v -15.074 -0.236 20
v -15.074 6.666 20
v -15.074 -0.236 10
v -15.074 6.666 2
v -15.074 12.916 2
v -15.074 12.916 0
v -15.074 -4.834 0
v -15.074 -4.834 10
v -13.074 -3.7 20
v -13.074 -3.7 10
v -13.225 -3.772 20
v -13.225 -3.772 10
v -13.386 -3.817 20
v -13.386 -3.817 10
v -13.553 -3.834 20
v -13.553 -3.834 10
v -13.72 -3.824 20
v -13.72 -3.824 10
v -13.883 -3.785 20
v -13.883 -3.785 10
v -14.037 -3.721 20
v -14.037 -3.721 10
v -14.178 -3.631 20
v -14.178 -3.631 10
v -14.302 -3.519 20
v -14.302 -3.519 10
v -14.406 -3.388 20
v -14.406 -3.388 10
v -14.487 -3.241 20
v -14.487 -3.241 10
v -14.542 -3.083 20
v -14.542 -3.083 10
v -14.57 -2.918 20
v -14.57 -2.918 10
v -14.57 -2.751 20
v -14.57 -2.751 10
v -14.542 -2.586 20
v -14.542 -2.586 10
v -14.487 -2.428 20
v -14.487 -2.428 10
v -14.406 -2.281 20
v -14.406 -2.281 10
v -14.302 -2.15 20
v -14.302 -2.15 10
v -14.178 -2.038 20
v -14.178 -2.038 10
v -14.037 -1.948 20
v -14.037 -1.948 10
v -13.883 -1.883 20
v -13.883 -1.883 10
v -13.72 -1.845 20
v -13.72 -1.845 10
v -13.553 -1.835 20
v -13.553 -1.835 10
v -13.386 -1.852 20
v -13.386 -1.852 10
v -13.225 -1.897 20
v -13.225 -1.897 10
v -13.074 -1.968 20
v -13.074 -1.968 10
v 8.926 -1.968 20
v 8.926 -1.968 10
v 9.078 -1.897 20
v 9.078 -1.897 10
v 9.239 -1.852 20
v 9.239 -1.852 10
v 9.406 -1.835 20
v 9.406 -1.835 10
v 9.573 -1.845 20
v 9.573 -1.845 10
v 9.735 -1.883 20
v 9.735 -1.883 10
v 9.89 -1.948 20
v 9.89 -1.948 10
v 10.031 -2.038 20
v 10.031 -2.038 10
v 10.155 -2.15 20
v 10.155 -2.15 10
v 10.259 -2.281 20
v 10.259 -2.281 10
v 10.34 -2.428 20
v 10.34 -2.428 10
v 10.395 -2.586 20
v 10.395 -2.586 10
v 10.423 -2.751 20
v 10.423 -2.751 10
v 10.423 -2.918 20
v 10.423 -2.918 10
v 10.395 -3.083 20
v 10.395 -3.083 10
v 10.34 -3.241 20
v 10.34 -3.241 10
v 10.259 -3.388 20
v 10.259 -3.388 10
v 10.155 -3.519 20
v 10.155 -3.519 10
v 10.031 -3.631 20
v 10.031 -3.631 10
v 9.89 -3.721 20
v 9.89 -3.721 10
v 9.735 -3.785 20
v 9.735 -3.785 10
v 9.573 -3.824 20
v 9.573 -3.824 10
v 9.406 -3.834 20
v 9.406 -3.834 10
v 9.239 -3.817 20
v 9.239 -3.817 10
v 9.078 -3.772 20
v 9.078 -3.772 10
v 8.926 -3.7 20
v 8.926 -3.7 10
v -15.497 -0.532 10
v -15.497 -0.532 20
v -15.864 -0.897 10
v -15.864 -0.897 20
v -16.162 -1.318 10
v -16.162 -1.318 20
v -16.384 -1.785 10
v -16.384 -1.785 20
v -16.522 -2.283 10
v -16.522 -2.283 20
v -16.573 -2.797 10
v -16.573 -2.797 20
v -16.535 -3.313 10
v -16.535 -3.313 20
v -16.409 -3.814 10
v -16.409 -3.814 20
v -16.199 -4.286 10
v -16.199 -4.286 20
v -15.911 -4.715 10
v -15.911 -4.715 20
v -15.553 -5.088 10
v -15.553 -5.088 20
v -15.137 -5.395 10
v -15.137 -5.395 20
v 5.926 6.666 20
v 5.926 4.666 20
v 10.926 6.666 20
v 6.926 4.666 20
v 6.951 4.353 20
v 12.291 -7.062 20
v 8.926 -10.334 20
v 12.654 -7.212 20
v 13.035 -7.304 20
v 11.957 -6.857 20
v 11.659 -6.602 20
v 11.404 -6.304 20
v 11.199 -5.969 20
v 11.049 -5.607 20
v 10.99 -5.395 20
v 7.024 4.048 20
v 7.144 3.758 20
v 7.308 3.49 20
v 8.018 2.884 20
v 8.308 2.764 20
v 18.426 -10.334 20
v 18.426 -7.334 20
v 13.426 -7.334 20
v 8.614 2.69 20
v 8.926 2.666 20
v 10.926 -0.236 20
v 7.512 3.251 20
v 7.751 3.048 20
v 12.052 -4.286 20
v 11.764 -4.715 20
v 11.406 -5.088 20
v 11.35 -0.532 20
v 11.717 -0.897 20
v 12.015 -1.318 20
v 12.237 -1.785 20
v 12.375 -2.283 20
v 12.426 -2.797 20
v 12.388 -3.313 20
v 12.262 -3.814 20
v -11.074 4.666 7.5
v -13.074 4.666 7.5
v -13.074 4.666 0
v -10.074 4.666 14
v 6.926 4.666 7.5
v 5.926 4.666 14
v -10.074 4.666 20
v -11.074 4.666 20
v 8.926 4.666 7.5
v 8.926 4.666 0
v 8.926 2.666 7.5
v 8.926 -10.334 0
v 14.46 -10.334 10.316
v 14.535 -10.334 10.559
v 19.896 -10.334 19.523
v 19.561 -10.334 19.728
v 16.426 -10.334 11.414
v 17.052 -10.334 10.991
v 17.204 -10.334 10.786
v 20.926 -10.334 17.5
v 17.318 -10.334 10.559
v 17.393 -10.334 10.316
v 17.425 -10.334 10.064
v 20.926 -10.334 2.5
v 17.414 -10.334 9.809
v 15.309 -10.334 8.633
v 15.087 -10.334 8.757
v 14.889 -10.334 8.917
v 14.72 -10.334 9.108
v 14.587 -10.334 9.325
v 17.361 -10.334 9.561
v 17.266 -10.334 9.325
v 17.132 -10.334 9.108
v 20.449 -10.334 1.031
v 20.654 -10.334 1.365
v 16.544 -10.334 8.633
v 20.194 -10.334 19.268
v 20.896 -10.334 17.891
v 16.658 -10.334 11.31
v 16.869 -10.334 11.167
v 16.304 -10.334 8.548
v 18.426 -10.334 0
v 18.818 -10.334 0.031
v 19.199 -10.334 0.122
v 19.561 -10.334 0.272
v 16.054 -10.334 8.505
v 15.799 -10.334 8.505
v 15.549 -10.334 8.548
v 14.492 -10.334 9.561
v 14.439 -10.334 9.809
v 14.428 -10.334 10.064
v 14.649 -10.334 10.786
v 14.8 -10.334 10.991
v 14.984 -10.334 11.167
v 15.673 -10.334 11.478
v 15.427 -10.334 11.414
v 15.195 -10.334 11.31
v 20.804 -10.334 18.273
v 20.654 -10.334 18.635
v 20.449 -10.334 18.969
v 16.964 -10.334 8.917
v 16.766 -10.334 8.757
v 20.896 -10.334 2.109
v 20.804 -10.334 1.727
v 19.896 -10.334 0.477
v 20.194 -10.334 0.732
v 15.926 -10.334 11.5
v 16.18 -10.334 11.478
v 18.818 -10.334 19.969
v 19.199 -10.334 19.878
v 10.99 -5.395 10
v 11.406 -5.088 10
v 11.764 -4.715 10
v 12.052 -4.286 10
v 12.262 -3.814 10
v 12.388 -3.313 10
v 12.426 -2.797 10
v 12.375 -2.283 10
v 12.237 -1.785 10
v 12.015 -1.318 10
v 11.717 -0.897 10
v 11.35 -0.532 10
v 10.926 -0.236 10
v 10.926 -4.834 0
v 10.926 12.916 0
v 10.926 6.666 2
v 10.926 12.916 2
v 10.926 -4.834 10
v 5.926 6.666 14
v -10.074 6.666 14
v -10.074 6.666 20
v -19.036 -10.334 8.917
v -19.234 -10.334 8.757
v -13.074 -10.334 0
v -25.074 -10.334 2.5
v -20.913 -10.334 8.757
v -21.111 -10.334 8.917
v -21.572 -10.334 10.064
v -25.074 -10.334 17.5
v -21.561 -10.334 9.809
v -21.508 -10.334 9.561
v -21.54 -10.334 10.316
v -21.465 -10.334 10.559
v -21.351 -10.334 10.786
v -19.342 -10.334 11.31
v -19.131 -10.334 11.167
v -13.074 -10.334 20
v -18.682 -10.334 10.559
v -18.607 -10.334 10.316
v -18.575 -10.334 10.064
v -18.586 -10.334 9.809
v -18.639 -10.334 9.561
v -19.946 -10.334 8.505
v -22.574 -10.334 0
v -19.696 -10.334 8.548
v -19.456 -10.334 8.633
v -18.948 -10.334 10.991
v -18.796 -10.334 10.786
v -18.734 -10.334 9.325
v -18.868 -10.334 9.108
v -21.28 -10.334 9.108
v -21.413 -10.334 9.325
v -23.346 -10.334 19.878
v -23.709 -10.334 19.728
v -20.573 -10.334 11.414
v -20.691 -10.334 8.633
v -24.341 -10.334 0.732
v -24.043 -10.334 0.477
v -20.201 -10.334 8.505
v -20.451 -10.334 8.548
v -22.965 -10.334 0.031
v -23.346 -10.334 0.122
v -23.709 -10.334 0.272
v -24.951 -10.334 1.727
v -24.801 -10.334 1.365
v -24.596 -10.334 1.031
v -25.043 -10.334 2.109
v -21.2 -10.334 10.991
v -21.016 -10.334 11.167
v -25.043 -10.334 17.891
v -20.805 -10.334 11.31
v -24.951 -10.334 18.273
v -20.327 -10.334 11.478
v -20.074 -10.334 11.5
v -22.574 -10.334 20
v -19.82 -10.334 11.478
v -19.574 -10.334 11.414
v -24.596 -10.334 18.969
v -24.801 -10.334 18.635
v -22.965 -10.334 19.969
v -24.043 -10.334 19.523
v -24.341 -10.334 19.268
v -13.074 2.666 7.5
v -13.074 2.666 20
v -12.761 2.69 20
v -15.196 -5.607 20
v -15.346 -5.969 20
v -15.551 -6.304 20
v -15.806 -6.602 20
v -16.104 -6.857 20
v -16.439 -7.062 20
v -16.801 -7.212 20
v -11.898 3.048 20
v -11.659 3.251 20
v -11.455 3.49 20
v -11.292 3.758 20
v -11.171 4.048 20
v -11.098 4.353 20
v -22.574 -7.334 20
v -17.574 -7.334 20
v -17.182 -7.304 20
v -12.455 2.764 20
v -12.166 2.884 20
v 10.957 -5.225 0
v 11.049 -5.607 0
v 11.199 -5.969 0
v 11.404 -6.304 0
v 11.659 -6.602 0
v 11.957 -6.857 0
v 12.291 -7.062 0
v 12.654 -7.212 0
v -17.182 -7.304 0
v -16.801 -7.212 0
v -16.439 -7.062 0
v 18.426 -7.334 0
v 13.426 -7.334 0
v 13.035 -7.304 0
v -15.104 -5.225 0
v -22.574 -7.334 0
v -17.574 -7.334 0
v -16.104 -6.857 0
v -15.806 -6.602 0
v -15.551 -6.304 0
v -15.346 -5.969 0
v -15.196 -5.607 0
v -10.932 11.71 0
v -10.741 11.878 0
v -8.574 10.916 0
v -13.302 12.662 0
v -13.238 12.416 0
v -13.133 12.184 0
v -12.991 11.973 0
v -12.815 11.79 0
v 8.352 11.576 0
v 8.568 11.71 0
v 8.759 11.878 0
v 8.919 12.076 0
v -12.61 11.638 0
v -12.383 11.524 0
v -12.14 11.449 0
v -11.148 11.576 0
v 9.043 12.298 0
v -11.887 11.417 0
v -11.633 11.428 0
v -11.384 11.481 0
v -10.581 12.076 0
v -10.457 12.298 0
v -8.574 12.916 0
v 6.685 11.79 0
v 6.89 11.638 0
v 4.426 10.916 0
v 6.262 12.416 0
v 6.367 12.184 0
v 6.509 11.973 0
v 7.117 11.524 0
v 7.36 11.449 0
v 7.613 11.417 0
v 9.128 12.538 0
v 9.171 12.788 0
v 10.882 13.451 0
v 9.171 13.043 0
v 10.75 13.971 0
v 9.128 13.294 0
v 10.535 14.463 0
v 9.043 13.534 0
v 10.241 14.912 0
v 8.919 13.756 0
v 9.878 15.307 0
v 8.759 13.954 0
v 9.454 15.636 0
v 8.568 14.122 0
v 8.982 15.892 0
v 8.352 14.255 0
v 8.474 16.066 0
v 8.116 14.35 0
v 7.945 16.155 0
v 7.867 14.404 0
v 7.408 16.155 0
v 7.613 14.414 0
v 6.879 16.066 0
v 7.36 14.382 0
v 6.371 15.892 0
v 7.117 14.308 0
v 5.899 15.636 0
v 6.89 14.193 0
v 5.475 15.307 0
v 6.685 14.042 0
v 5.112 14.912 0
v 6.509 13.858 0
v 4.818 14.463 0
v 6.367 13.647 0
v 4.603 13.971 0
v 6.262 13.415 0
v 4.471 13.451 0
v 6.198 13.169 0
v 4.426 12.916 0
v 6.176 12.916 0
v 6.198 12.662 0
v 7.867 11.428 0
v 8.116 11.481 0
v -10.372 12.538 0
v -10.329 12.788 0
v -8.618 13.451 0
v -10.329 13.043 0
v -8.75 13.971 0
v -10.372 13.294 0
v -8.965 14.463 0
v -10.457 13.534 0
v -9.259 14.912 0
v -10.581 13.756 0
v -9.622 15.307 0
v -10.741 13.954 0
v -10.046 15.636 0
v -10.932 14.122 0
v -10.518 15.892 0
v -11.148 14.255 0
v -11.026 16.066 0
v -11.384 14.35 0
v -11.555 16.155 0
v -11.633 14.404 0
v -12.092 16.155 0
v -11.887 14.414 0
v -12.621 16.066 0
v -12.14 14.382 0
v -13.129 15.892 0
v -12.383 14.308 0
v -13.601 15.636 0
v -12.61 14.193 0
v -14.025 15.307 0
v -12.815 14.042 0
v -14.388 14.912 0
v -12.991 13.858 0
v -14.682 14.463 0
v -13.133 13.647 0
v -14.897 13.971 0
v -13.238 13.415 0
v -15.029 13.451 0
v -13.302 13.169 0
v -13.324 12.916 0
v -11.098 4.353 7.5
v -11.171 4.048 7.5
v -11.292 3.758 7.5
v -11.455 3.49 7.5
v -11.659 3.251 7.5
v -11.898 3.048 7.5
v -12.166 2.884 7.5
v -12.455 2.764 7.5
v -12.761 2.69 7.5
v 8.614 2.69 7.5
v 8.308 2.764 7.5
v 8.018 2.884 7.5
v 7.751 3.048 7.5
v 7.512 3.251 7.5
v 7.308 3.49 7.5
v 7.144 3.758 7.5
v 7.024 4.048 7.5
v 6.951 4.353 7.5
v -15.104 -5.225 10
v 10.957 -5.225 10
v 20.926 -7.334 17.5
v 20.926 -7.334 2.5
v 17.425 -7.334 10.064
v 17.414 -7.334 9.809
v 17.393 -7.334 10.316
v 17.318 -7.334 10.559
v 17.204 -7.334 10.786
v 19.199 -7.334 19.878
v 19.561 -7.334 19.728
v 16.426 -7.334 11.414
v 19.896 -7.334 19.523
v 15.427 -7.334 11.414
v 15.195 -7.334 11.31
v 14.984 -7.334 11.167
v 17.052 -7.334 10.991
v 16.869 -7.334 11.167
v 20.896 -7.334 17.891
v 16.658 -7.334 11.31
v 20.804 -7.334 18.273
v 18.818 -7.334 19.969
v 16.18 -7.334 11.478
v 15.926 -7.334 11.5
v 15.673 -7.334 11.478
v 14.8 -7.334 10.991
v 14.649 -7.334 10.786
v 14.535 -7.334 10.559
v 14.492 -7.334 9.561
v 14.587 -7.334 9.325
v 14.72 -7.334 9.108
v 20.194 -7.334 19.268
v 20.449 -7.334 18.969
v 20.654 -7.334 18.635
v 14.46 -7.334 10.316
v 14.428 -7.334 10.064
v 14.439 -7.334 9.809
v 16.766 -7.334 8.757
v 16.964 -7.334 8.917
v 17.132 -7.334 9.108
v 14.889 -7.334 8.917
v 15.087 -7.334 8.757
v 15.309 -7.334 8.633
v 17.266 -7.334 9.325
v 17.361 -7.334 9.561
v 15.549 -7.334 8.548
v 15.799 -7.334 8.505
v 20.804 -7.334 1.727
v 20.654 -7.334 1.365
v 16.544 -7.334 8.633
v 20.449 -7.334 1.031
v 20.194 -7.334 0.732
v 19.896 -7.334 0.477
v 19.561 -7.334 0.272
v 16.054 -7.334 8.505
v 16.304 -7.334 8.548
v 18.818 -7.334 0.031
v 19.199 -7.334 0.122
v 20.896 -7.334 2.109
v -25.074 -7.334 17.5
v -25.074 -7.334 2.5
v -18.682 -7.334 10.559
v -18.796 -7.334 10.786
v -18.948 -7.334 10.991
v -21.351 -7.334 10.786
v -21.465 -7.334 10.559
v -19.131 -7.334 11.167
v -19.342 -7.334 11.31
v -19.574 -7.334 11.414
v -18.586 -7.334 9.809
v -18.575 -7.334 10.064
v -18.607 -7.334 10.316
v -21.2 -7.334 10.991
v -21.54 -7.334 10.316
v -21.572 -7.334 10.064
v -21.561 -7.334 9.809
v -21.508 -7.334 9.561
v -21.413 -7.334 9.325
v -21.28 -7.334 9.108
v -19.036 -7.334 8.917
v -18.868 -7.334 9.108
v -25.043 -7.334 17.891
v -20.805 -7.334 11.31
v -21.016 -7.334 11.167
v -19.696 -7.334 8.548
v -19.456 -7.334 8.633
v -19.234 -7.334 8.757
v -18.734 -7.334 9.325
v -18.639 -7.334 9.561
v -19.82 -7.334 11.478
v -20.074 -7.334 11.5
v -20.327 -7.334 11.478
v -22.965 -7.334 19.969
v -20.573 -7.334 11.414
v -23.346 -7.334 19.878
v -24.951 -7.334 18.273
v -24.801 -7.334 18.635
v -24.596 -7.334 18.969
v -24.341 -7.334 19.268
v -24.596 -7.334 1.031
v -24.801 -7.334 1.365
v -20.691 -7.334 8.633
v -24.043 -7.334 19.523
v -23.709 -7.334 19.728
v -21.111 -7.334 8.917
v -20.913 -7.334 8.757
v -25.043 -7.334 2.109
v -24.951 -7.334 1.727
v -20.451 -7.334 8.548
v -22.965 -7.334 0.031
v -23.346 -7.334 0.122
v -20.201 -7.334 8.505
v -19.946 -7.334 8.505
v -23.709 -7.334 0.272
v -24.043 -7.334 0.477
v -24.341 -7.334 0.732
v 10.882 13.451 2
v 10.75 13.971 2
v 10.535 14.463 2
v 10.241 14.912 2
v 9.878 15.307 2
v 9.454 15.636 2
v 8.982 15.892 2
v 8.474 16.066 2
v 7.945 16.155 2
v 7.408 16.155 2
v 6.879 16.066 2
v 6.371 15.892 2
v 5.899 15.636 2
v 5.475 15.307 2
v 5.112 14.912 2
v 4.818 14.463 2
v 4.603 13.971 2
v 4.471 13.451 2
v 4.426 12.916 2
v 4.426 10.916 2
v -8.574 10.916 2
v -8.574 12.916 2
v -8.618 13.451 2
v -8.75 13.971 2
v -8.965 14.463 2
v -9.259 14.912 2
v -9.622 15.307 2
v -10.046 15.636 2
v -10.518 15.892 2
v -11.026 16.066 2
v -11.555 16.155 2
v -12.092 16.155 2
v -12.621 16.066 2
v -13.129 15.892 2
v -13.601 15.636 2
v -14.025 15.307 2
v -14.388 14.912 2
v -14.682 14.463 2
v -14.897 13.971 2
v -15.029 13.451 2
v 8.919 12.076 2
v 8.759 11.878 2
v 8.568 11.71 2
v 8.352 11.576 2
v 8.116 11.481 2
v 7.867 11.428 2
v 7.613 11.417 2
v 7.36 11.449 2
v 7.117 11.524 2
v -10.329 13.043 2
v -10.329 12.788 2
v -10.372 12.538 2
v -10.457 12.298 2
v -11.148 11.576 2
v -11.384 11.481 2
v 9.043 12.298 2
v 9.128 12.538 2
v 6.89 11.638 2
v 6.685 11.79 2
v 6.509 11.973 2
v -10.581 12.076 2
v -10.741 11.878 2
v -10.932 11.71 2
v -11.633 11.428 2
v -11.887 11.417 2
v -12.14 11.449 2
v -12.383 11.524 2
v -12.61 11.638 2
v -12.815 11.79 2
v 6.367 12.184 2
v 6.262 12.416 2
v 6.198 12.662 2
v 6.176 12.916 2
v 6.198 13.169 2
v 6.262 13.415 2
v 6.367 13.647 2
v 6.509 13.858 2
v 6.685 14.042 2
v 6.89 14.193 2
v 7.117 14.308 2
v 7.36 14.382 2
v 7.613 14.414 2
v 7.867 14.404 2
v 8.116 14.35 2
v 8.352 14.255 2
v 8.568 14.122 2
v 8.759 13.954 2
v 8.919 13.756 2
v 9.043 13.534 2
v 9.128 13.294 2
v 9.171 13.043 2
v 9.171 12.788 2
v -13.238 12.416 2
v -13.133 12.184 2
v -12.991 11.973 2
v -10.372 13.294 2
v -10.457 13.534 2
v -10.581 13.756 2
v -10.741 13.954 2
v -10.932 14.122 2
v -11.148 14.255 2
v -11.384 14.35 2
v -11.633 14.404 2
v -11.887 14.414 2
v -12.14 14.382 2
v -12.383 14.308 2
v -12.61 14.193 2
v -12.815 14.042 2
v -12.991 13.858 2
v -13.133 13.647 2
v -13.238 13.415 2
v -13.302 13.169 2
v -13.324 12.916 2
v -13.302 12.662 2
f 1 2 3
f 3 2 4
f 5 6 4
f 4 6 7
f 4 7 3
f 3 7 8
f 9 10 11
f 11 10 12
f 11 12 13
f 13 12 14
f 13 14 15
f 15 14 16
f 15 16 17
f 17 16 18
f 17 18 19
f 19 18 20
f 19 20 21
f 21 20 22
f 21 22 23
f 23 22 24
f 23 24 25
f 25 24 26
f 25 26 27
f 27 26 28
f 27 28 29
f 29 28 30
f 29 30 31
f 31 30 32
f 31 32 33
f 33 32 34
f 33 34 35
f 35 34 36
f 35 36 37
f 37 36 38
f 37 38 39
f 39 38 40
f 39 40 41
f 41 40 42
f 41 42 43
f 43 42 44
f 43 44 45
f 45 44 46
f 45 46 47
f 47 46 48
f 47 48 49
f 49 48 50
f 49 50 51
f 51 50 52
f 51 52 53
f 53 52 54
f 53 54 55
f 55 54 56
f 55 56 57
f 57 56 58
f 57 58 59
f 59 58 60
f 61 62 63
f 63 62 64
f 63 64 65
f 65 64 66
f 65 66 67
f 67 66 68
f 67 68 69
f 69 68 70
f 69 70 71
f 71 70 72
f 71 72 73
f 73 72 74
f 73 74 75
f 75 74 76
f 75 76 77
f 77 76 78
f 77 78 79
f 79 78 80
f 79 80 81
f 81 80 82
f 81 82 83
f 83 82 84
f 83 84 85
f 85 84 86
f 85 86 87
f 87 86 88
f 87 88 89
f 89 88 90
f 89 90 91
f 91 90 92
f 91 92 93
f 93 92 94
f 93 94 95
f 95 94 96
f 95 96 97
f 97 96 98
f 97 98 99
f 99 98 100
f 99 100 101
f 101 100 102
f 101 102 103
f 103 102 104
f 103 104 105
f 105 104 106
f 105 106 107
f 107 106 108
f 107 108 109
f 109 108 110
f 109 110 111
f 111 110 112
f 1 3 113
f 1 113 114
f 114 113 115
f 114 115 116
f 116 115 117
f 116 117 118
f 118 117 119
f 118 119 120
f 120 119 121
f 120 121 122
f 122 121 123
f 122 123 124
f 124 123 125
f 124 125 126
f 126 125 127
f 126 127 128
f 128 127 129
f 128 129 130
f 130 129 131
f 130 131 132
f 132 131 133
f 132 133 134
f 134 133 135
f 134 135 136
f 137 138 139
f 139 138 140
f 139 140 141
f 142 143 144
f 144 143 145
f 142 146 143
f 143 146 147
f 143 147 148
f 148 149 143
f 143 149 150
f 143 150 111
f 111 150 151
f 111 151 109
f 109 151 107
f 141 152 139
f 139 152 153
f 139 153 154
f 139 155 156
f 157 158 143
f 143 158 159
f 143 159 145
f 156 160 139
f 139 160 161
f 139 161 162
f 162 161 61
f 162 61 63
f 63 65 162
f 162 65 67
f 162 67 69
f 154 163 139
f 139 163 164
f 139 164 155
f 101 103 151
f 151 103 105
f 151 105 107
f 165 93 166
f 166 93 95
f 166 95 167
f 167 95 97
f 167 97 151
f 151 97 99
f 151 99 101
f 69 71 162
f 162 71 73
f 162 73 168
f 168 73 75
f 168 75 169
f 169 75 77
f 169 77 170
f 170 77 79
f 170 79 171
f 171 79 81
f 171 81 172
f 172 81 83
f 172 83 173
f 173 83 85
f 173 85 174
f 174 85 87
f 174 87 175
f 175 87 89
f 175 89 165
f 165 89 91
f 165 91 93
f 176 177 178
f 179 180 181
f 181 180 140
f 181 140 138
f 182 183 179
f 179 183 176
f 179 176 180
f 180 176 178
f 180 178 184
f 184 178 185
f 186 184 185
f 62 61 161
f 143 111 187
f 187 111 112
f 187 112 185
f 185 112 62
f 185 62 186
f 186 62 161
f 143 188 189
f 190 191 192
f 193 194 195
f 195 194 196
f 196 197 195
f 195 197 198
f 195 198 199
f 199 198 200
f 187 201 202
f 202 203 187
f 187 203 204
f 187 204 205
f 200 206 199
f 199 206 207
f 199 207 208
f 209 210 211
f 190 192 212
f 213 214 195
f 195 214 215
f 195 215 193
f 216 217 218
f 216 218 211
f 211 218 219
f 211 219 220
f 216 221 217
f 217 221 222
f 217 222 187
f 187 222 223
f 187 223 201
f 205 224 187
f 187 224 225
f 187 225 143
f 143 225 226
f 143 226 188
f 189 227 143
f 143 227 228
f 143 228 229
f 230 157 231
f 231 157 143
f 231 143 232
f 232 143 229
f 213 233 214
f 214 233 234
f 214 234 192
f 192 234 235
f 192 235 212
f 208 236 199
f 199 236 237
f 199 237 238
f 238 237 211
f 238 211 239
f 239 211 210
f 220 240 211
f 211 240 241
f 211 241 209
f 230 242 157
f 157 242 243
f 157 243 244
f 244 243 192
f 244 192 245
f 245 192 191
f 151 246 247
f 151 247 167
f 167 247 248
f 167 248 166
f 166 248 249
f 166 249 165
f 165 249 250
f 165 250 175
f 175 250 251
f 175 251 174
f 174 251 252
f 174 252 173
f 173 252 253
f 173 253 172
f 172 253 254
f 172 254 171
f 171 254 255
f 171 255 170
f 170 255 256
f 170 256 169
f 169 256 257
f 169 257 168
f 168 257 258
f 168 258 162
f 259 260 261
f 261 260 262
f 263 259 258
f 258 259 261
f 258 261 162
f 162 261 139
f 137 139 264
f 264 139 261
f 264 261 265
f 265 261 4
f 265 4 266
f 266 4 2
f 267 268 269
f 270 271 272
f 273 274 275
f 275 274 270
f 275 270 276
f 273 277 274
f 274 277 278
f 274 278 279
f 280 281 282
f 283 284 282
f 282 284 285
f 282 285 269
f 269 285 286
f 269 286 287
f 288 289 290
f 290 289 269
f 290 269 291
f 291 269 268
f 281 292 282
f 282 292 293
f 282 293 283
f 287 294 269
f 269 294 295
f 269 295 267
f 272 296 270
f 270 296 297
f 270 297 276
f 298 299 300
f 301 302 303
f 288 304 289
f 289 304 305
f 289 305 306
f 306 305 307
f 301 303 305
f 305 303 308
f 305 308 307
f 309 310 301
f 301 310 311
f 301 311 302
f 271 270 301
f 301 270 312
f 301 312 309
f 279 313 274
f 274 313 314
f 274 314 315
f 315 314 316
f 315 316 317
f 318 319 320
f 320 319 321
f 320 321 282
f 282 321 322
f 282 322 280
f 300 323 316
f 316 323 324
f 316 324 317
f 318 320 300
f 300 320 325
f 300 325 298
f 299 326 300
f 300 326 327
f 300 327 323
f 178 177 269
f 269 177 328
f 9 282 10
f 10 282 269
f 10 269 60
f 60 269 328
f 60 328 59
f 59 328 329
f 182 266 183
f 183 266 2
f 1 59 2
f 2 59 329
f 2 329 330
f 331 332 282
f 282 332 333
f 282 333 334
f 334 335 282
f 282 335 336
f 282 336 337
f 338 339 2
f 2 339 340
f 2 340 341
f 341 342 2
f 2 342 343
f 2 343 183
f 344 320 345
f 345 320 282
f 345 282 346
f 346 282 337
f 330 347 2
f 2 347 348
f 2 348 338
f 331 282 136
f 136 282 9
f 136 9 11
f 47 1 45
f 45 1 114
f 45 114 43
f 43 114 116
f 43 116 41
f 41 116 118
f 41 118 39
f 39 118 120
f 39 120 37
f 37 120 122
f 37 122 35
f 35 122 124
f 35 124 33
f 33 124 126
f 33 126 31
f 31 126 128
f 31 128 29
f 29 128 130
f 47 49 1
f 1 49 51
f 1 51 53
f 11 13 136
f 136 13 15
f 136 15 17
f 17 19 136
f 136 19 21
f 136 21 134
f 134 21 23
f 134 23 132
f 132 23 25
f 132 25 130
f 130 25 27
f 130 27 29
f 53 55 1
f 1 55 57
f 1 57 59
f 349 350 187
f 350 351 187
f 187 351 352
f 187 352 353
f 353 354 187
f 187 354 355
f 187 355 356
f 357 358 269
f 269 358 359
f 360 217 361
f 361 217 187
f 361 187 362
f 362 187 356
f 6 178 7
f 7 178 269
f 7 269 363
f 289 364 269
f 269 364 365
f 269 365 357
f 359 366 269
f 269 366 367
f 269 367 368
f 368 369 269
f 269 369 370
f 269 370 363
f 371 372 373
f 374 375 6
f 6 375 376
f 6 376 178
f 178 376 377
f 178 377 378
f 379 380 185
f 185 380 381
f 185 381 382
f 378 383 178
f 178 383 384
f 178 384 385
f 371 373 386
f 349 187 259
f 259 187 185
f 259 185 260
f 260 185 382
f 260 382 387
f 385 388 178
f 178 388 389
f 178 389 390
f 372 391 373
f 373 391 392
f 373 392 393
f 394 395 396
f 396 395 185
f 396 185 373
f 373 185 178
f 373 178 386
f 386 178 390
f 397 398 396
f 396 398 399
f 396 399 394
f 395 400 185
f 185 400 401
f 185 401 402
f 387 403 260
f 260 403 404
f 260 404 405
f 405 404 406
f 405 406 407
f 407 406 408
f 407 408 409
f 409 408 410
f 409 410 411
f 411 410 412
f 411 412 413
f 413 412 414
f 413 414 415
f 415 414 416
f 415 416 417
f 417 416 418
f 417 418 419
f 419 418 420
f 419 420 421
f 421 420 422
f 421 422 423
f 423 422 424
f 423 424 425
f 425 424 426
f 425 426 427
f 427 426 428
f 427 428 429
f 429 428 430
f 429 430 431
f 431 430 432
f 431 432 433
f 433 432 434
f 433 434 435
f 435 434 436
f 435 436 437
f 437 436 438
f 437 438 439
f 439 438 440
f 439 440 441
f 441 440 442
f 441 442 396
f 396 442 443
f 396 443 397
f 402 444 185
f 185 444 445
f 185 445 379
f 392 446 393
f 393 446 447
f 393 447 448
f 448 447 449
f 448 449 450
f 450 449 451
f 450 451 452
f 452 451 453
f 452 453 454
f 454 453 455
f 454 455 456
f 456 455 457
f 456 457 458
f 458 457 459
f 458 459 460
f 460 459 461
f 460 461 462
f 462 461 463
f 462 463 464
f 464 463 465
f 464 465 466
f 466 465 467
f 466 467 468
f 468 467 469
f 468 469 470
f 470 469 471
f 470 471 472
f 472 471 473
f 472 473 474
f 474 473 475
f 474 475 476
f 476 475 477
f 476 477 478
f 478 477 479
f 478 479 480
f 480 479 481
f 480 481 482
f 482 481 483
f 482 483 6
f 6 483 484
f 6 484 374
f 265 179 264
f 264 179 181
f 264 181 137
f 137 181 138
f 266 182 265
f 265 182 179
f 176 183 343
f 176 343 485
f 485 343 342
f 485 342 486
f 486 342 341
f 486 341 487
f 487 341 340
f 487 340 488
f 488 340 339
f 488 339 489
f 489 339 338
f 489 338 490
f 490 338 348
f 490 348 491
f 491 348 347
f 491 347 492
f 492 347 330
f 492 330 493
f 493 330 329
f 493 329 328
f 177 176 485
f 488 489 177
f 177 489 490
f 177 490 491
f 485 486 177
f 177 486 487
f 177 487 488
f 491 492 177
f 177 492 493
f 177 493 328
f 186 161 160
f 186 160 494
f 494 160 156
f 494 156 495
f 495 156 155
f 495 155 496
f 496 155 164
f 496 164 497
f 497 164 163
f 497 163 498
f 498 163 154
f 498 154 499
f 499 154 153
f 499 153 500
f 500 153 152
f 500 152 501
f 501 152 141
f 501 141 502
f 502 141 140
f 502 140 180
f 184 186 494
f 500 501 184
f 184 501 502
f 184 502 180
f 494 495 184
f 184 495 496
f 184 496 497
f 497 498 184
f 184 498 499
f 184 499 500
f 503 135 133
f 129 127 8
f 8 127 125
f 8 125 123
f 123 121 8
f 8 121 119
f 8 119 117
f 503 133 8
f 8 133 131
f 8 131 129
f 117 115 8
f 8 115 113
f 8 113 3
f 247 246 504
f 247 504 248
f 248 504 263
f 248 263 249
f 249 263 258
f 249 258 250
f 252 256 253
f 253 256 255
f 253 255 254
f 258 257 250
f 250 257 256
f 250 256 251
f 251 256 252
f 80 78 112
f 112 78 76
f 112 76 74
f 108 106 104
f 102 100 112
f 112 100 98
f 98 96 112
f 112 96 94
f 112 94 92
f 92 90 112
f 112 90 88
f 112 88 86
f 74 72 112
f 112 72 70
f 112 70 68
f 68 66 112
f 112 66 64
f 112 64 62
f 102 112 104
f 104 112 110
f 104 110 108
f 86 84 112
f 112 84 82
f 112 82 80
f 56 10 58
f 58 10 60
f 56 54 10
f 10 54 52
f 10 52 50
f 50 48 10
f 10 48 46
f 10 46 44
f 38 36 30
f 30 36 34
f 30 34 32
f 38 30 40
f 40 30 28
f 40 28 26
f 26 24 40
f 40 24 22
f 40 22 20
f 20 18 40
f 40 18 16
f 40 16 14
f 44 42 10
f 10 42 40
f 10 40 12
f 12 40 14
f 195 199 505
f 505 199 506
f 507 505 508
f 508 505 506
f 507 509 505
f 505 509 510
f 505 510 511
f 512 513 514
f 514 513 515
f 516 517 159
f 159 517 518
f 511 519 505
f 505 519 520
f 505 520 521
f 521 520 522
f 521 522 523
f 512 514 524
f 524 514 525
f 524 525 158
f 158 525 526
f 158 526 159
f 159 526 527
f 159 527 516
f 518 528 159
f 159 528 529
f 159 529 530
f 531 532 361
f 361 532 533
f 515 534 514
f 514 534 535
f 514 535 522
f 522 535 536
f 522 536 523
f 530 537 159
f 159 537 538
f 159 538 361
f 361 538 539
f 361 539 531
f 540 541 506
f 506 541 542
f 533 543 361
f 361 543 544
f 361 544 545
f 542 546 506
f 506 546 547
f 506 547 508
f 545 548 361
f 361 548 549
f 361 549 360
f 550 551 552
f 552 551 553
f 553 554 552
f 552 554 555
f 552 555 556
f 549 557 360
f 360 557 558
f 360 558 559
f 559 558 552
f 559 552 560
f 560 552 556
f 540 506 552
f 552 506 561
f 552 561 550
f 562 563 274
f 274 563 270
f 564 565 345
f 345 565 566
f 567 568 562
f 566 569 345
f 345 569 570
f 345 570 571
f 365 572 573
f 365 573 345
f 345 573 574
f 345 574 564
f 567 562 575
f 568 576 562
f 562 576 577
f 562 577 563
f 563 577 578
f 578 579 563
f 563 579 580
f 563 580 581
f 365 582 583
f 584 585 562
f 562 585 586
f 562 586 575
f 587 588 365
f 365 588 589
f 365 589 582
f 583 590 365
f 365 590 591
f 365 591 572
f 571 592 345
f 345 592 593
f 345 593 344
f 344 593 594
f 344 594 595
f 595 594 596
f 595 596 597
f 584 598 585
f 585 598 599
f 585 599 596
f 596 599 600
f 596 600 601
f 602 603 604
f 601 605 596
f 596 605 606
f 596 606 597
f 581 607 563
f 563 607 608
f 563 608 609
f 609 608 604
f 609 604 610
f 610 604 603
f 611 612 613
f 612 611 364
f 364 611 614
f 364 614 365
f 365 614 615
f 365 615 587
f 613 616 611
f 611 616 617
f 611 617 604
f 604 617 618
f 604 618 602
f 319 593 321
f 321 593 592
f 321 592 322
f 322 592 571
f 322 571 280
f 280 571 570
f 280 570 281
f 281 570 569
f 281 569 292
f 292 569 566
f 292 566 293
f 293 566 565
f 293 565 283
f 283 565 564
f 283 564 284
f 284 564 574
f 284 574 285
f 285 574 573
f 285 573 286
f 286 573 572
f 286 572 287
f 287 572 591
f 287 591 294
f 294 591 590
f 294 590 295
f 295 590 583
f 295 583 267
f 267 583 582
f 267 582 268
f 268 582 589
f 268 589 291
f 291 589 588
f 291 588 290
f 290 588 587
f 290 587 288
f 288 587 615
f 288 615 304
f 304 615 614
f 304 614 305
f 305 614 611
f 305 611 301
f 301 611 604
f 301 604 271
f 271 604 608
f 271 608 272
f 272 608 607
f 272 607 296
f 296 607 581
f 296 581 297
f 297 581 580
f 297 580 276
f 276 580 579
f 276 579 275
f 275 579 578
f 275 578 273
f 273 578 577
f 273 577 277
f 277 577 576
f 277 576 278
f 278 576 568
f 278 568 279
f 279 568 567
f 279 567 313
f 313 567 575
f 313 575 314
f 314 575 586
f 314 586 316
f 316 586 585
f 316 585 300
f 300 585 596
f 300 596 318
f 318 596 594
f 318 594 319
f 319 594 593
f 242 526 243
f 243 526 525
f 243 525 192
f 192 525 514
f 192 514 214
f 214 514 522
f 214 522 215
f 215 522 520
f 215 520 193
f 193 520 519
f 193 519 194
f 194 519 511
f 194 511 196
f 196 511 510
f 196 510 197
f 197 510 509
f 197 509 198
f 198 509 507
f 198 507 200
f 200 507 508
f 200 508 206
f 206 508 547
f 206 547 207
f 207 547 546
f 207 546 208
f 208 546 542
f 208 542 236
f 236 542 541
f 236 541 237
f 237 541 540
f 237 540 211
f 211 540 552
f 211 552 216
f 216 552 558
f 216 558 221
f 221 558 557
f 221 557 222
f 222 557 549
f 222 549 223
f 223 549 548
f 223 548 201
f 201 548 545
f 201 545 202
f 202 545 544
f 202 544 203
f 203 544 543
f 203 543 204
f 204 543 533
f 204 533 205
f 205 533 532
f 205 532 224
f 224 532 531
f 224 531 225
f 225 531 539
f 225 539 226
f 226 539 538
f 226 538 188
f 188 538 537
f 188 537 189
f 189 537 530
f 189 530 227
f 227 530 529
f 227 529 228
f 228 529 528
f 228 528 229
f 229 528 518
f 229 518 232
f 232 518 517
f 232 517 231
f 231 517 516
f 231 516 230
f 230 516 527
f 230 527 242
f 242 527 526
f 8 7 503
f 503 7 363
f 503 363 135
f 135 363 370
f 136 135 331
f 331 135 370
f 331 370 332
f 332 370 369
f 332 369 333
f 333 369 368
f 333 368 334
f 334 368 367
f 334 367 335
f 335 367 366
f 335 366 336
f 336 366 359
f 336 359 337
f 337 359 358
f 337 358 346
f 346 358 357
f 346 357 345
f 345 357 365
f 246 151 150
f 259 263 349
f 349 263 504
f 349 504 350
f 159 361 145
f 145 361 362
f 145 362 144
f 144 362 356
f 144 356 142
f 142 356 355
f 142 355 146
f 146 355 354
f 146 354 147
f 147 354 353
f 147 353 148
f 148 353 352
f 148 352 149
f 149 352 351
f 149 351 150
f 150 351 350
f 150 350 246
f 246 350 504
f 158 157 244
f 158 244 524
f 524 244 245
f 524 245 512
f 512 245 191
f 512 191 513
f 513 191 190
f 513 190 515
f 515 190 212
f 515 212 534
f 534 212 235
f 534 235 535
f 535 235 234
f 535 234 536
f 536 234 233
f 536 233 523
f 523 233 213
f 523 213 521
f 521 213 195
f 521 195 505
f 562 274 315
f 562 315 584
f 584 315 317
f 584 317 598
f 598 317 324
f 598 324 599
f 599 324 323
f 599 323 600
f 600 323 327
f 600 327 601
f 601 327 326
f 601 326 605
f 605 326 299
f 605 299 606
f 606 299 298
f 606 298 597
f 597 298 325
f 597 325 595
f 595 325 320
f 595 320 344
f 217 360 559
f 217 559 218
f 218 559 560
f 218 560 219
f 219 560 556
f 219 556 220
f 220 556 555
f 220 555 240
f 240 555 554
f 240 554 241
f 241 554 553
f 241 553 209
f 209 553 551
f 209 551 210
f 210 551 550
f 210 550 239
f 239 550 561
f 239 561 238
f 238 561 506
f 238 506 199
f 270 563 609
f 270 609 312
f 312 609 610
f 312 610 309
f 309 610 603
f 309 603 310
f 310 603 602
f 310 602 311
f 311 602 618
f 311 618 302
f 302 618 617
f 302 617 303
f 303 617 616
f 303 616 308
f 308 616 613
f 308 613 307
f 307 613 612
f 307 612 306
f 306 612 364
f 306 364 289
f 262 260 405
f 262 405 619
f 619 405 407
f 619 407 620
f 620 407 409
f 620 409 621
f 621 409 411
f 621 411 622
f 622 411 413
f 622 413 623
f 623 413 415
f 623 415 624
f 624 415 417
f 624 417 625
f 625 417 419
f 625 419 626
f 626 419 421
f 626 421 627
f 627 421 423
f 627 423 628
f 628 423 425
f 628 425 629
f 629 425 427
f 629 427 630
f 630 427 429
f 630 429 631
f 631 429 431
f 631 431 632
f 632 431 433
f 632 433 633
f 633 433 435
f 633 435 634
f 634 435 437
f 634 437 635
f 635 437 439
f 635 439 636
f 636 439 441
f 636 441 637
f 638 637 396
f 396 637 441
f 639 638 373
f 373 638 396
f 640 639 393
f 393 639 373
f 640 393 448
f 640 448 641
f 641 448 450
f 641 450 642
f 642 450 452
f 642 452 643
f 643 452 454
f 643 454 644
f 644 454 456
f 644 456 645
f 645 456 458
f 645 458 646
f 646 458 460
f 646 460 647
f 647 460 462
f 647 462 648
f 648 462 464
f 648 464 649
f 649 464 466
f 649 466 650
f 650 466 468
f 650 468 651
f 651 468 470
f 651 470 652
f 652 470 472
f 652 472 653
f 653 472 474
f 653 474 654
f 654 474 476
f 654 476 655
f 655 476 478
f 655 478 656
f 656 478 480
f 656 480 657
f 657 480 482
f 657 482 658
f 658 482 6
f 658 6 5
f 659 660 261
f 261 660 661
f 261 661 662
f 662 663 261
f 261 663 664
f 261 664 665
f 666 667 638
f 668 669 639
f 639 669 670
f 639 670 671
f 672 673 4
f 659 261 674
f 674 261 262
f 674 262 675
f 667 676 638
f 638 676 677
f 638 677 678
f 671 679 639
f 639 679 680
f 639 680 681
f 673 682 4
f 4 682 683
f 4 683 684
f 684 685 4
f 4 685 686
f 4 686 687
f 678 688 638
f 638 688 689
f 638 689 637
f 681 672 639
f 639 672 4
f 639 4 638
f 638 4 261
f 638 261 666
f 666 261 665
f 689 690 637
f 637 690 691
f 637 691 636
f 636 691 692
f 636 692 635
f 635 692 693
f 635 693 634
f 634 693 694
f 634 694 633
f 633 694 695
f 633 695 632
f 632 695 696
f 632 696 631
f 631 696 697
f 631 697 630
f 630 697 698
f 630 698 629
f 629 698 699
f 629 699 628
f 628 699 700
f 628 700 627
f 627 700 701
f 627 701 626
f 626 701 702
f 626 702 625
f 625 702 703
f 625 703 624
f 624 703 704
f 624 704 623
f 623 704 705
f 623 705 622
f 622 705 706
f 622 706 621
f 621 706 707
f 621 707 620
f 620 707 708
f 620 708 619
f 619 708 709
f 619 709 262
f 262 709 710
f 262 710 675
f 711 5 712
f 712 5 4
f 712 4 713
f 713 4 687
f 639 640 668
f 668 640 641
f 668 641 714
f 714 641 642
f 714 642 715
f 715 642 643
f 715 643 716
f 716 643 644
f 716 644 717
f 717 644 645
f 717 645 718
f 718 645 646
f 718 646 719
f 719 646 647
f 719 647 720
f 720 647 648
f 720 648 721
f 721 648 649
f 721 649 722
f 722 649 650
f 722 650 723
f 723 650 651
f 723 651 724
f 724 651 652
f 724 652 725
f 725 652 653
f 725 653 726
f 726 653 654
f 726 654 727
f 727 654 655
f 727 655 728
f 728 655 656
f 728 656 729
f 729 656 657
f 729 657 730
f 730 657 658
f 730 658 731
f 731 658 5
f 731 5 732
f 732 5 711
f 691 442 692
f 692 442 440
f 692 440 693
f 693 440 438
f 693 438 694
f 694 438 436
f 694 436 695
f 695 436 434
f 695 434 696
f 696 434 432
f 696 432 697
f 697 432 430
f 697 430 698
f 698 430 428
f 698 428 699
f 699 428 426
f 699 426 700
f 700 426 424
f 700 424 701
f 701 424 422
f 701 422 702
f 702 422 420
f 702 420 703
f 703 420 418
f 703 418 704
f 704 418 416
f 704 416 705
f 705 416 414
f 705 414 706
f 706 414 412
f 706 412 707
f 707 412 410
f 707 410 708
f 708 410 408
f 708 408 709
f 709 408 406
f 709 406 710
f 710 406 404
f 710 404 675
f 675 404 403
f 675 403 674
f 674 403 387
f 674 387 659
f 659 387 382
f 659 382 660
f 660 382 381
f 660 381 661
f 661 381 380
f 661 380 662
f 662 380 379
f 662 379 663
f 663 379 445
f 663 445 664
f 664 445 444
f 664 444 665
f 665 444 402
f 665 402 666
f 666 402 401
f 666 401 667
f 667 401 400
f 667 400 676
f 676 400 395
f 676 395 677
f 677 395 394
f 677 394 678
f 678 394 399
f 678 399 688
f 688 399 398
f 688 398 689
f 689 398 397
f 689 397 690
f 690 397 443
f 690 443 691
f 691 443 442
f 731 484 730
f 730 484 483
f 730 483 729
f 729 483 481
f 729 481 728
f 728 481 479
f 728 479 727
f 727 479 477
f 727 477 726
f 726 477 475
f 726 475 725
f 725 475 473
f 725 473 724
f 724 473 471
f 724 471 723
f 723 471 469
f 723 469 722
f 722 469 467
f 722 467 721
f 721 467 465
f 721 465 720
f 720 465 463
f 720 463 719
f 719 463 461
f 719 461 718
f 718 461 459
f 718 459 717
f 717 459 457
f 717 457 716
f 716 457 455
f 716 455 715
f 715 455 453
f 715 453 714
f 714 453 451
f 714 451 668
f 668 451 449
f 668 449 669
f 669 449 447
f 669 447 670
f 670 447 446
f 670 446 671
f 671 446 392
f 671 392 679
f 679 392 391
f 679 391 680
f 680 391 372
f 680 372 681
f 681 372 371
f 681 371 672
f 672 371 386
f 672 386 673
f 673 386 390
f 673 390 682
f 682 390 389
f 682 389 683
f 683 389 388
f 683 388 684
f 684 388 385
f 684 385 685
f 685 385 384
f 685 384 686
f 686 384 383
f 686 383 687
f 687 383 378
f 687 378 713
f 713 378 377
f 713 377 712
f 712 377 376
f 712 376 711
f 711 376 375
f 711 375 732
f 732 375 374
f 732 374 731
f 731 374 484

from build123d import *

# Parameters (mm, degrees)
EXTRUDE_1_DEPTH     = 20
CUT_EXTRUDE_1_DEPTH = 20
EXTRUDE_2_DEPTH     = 12.5
SKETCH_4_W          = 4.208324297
SKETCH_4_H          = 5.852484321
SKETCH_4_W_2        = 6.809838445
SKETCH_4_H_2        = 5.603711631
CUT_EXTRUDE_2_DEPTH = 10
EXTRUDE_3_DEPTH     = 10
SKETCH_6_W          = 10
SKETCH_6_H          = 20
EXTRUDE_4_DEPTH     = 3
SKETCH_7_R          = 1.5
CUT_EXTRUDE_3_DEPTH = 3
FILLET_1_R          = 2.5
SKETCH_8_R          = 1.5
EXTRUDE_5_DEPTH     = 2


with BuildPart() as part:
    # 草图1 → 凸台-拉伸1 (new body)
    with BuildSketch(Plane.XY):
        with BuildLine():
            Line((-15.073529412, 6.665686275), (10.926470588, 6.665686275))
            Line((10.926470588, 6.665686275), (10.926470588, -0.236237514))
            ThreePointArc((10.926470588, -0.236237514), (12.426470588, -2.834313725), (10.926470588, -5.432389937))
            Line((10.926470588, -5.432389937), (10.926470588, -10.334313725))
            Line((10.926470588, -10.334313725), (8.926470588, -10.334313725))
            Line((8.926470588, -10.334313725), (8.926470588, -3.700339129))
            ThreePointArc((8.926470588, -3.700339129), (10.426470588, -2.834313725), (8.926470588, -1.968288322))
            Line((8.926470588, -1.968288322), (8.926470588, 4.665686275))
            Line((8.926470588, 4.665686275), (-13.073529412, 4.665686275))
            Line((-13.073529412, 4.665686275), (-13.073529412, -1.968288322))
            ThreePointArc((-13.073529412, -1.968288322), (-14.573529412, -2.834313725), (-13.073529412, -3.700339129))
            Line((-13.073529412, -3.700339129), (-13.073529412, -10.334313725))
            Line((-13.073529412, -10.334313725), (-15.073529412, -10.334313725))
            Line((-15.073529412, -10.334313725), (-15.073529412, -5.432389937))
            ThreePointArc((-15.073529412, -5.432389937), (-16.573529412, -2.834313725), (-15.073529412, -0.236237514))
            Line((-15.073529412, -0.236237514), (-15.073529412, 6.665686275))
        make_face()
    extrude(amount=EXTRUDE_1_DEPTH)

    # 草图2 → 切除-拉伸1 (cut)
    with BuildSketch(Plane(origin=(0, 6.665686275, 0), x_dir=(1, 0, 0), z_dir=(0, 1, 0))):
        Polygon((-2.073529412, -14), (-10.073529412, -14), (-10.073529412, -20), (5.926470588, -20), (5.926470588, -14), align=None)
    extrude(amount=-CUT_EXTRUDE_1_DEPTH, mode=Mode.SUBTRACT)

    # 草图3 → 凸台-拉伸2 (add)
    with BuildSketch(Plane.XY.offset(20)):
        with BuildLine():
            Line((-13.073529412, 4.665686275), (-13.073529412, 2.665686275))
            ThreePointArc((-13.073529412, 2.665686275), (-11.659315849, 3.251472712), (-11.073529412, 4.665686275))
            Line((-11.073529412, 4.665686275), (-13.073529412, 4.665686275))
        make_face()
        with BuildLine():
            Line((8.926470588, 4.665686275), (8.926470588, 2.665686275))
            ThreePointArc((8.926470588, 2.665686275), (7.512257026, 3.251472712), (6.926470588, 4.665686275))
            Line((6.926470588, 4.665686275), (8.926470588, 4.665686275))
        make_face()
    extrude(amount=-EXTRUDE_2_DEPTH)

    # 草图4 → 切除-拉伸2 (cut)
    with BuildSketch(Plane(origin=(0, 0, 0), x_dir=(-1, 0, 0), z_dir=(0, 0, -1))):
        with Locations((-13.030632737, -3.162479675)):
            Rectangle(SKETCH_4_W, SKETCH_4_H)
        with Locations((18.478448635, -3.03809333)):
            Rectangle(SKETCH_4_W_2, SKETCH_4_H_2)
    extrude(amount=-CUT_EXTRUDE_2_DEPTH, mode=Mode.SUBTRACT)

    # 草图5 → 凸台-拉伸3 (add)
    with BuildSketch(Plane(origin=(0, 0, 0), x_dir=(-1, 0, 0), z_dir=(0, 0, -1))):
        with BuildLine():
            Line((-8.926470588, -1.968288322), (-8.926470588, -3.700339129))
            ThreePointArc((-8.926470588, -3.700339129), (-10.426470588, -2.834313725), (-8.926470588, -1.968288322))
        make_face()
        with BuildLine():
            Line((13.073529412, -1.968288322), (13.073529412, -3.700339129))
            ThreePointArc((13.073529412, -3.700339129), (14.573529412, -2.834313725), (13.073529412, -1.968288322))
        make_face()
    extrude(amount=-EXTRUDE_3_DEPTH)

    # 草图6 → 凸台-拉伸4 (add)
    with BuildSketch(Plane.XZ.offset(10.334313725)):
        with Locations((15.926470588, 10)):
            Rectangle(SKETCH_6_W, SKETCH_6_H)
        with Locations((-20.073529412, 10)):
            Rectangle(SKETCH_6_W, SKETCH_6_H)
    extrude(amount=-EXTRUDE_4_DEPTH)

    # 草图7 → 切除-拉伸3 (cut)
    with BuildSketch(Plane(origin=(0, -7.334313725, 0), x_dir=(1, 0, 0), z_dir=(0, 1, 0))):
        with Locations(Location((15.926470588, -10, 0), (0, 0, 270))):
            Circle(SKETCH_7_R)
        with Locations(Location((-20.073529412, -10, 0), (0, 0, 270))):
            Circle(SKETCH_7_R)
    extrude(amount=-CUT_EXTRUDE_3_DEPTH, mode=Mode.SUBTRACT)

    # 圆角1
    fillet_1_edges = [part.edges().sort_by_distance(p)[0] for p in [
        (-15.073529412, -7.334313725, 10),
        (10.926470588, -7.334313725, 10),
        (20.926470588, -8.834313725, 20),
        (-25.073529412, -8.834313725, 20),
        (20.926470588, -8.834313725, 0),
        (-25.073529412, -8.834313725, 0),
    ]]
    fillet(fillet_1_edges, radius=FILLET_1_R)

    # 草图8 → 凸台-拉伸5 (add)
    with BuildSketch(Plane(origin=(0, 0, 0), x_dir=(-1, 0, 0), z_dir=(0, 0, -1))):
        with BuildLine():
            Line((-4.426470588, 10.915686275), (8.573529412, 10.915686275))
            Line((8.573529412, 10.915686275), (8.573529412, 12.915686275))
            ThreePointArc((8.573529412, 12.915686275), (11.823529412, 16.165686275), (15.073529412, 12.915686275))
            Line((15.073529412, 12.915686275), (15.073529412, 6.665686275))
            Line((15.073529412, 6.665686275), (8.573529412, 6.665686275))
            Line((8.573529412, 6.665686275), (-4.426470588, 6.665686275))
            Line((-4.426470588, 6.665686275), (-10.926470588, 6.665686275))
            Line((-10.926470588, 6.665686275), (-10.926470588, 12.915686275))
            ThreePointArc((-10.926470588, 12.915686275), (-7.676470588, 16.165686275), (-4.426470588, 12.915686275))
            Line((-4.426470588, 12.915686275), (-4.426470588, 10.915686275))
        make_face()
        with Locations((-7.676470588, 12.915686275)):
            Circle(SKETCH_8_R, mode=Mode.SUBTRACT)
        with Locations((11.823529412, 12.915686275)):
            Circle(SKETCH_8_R, mode=Mode.SUBTRACT)
    extrude(amount=-EXTRUDE_5_DEPTH)


solid = part.part
